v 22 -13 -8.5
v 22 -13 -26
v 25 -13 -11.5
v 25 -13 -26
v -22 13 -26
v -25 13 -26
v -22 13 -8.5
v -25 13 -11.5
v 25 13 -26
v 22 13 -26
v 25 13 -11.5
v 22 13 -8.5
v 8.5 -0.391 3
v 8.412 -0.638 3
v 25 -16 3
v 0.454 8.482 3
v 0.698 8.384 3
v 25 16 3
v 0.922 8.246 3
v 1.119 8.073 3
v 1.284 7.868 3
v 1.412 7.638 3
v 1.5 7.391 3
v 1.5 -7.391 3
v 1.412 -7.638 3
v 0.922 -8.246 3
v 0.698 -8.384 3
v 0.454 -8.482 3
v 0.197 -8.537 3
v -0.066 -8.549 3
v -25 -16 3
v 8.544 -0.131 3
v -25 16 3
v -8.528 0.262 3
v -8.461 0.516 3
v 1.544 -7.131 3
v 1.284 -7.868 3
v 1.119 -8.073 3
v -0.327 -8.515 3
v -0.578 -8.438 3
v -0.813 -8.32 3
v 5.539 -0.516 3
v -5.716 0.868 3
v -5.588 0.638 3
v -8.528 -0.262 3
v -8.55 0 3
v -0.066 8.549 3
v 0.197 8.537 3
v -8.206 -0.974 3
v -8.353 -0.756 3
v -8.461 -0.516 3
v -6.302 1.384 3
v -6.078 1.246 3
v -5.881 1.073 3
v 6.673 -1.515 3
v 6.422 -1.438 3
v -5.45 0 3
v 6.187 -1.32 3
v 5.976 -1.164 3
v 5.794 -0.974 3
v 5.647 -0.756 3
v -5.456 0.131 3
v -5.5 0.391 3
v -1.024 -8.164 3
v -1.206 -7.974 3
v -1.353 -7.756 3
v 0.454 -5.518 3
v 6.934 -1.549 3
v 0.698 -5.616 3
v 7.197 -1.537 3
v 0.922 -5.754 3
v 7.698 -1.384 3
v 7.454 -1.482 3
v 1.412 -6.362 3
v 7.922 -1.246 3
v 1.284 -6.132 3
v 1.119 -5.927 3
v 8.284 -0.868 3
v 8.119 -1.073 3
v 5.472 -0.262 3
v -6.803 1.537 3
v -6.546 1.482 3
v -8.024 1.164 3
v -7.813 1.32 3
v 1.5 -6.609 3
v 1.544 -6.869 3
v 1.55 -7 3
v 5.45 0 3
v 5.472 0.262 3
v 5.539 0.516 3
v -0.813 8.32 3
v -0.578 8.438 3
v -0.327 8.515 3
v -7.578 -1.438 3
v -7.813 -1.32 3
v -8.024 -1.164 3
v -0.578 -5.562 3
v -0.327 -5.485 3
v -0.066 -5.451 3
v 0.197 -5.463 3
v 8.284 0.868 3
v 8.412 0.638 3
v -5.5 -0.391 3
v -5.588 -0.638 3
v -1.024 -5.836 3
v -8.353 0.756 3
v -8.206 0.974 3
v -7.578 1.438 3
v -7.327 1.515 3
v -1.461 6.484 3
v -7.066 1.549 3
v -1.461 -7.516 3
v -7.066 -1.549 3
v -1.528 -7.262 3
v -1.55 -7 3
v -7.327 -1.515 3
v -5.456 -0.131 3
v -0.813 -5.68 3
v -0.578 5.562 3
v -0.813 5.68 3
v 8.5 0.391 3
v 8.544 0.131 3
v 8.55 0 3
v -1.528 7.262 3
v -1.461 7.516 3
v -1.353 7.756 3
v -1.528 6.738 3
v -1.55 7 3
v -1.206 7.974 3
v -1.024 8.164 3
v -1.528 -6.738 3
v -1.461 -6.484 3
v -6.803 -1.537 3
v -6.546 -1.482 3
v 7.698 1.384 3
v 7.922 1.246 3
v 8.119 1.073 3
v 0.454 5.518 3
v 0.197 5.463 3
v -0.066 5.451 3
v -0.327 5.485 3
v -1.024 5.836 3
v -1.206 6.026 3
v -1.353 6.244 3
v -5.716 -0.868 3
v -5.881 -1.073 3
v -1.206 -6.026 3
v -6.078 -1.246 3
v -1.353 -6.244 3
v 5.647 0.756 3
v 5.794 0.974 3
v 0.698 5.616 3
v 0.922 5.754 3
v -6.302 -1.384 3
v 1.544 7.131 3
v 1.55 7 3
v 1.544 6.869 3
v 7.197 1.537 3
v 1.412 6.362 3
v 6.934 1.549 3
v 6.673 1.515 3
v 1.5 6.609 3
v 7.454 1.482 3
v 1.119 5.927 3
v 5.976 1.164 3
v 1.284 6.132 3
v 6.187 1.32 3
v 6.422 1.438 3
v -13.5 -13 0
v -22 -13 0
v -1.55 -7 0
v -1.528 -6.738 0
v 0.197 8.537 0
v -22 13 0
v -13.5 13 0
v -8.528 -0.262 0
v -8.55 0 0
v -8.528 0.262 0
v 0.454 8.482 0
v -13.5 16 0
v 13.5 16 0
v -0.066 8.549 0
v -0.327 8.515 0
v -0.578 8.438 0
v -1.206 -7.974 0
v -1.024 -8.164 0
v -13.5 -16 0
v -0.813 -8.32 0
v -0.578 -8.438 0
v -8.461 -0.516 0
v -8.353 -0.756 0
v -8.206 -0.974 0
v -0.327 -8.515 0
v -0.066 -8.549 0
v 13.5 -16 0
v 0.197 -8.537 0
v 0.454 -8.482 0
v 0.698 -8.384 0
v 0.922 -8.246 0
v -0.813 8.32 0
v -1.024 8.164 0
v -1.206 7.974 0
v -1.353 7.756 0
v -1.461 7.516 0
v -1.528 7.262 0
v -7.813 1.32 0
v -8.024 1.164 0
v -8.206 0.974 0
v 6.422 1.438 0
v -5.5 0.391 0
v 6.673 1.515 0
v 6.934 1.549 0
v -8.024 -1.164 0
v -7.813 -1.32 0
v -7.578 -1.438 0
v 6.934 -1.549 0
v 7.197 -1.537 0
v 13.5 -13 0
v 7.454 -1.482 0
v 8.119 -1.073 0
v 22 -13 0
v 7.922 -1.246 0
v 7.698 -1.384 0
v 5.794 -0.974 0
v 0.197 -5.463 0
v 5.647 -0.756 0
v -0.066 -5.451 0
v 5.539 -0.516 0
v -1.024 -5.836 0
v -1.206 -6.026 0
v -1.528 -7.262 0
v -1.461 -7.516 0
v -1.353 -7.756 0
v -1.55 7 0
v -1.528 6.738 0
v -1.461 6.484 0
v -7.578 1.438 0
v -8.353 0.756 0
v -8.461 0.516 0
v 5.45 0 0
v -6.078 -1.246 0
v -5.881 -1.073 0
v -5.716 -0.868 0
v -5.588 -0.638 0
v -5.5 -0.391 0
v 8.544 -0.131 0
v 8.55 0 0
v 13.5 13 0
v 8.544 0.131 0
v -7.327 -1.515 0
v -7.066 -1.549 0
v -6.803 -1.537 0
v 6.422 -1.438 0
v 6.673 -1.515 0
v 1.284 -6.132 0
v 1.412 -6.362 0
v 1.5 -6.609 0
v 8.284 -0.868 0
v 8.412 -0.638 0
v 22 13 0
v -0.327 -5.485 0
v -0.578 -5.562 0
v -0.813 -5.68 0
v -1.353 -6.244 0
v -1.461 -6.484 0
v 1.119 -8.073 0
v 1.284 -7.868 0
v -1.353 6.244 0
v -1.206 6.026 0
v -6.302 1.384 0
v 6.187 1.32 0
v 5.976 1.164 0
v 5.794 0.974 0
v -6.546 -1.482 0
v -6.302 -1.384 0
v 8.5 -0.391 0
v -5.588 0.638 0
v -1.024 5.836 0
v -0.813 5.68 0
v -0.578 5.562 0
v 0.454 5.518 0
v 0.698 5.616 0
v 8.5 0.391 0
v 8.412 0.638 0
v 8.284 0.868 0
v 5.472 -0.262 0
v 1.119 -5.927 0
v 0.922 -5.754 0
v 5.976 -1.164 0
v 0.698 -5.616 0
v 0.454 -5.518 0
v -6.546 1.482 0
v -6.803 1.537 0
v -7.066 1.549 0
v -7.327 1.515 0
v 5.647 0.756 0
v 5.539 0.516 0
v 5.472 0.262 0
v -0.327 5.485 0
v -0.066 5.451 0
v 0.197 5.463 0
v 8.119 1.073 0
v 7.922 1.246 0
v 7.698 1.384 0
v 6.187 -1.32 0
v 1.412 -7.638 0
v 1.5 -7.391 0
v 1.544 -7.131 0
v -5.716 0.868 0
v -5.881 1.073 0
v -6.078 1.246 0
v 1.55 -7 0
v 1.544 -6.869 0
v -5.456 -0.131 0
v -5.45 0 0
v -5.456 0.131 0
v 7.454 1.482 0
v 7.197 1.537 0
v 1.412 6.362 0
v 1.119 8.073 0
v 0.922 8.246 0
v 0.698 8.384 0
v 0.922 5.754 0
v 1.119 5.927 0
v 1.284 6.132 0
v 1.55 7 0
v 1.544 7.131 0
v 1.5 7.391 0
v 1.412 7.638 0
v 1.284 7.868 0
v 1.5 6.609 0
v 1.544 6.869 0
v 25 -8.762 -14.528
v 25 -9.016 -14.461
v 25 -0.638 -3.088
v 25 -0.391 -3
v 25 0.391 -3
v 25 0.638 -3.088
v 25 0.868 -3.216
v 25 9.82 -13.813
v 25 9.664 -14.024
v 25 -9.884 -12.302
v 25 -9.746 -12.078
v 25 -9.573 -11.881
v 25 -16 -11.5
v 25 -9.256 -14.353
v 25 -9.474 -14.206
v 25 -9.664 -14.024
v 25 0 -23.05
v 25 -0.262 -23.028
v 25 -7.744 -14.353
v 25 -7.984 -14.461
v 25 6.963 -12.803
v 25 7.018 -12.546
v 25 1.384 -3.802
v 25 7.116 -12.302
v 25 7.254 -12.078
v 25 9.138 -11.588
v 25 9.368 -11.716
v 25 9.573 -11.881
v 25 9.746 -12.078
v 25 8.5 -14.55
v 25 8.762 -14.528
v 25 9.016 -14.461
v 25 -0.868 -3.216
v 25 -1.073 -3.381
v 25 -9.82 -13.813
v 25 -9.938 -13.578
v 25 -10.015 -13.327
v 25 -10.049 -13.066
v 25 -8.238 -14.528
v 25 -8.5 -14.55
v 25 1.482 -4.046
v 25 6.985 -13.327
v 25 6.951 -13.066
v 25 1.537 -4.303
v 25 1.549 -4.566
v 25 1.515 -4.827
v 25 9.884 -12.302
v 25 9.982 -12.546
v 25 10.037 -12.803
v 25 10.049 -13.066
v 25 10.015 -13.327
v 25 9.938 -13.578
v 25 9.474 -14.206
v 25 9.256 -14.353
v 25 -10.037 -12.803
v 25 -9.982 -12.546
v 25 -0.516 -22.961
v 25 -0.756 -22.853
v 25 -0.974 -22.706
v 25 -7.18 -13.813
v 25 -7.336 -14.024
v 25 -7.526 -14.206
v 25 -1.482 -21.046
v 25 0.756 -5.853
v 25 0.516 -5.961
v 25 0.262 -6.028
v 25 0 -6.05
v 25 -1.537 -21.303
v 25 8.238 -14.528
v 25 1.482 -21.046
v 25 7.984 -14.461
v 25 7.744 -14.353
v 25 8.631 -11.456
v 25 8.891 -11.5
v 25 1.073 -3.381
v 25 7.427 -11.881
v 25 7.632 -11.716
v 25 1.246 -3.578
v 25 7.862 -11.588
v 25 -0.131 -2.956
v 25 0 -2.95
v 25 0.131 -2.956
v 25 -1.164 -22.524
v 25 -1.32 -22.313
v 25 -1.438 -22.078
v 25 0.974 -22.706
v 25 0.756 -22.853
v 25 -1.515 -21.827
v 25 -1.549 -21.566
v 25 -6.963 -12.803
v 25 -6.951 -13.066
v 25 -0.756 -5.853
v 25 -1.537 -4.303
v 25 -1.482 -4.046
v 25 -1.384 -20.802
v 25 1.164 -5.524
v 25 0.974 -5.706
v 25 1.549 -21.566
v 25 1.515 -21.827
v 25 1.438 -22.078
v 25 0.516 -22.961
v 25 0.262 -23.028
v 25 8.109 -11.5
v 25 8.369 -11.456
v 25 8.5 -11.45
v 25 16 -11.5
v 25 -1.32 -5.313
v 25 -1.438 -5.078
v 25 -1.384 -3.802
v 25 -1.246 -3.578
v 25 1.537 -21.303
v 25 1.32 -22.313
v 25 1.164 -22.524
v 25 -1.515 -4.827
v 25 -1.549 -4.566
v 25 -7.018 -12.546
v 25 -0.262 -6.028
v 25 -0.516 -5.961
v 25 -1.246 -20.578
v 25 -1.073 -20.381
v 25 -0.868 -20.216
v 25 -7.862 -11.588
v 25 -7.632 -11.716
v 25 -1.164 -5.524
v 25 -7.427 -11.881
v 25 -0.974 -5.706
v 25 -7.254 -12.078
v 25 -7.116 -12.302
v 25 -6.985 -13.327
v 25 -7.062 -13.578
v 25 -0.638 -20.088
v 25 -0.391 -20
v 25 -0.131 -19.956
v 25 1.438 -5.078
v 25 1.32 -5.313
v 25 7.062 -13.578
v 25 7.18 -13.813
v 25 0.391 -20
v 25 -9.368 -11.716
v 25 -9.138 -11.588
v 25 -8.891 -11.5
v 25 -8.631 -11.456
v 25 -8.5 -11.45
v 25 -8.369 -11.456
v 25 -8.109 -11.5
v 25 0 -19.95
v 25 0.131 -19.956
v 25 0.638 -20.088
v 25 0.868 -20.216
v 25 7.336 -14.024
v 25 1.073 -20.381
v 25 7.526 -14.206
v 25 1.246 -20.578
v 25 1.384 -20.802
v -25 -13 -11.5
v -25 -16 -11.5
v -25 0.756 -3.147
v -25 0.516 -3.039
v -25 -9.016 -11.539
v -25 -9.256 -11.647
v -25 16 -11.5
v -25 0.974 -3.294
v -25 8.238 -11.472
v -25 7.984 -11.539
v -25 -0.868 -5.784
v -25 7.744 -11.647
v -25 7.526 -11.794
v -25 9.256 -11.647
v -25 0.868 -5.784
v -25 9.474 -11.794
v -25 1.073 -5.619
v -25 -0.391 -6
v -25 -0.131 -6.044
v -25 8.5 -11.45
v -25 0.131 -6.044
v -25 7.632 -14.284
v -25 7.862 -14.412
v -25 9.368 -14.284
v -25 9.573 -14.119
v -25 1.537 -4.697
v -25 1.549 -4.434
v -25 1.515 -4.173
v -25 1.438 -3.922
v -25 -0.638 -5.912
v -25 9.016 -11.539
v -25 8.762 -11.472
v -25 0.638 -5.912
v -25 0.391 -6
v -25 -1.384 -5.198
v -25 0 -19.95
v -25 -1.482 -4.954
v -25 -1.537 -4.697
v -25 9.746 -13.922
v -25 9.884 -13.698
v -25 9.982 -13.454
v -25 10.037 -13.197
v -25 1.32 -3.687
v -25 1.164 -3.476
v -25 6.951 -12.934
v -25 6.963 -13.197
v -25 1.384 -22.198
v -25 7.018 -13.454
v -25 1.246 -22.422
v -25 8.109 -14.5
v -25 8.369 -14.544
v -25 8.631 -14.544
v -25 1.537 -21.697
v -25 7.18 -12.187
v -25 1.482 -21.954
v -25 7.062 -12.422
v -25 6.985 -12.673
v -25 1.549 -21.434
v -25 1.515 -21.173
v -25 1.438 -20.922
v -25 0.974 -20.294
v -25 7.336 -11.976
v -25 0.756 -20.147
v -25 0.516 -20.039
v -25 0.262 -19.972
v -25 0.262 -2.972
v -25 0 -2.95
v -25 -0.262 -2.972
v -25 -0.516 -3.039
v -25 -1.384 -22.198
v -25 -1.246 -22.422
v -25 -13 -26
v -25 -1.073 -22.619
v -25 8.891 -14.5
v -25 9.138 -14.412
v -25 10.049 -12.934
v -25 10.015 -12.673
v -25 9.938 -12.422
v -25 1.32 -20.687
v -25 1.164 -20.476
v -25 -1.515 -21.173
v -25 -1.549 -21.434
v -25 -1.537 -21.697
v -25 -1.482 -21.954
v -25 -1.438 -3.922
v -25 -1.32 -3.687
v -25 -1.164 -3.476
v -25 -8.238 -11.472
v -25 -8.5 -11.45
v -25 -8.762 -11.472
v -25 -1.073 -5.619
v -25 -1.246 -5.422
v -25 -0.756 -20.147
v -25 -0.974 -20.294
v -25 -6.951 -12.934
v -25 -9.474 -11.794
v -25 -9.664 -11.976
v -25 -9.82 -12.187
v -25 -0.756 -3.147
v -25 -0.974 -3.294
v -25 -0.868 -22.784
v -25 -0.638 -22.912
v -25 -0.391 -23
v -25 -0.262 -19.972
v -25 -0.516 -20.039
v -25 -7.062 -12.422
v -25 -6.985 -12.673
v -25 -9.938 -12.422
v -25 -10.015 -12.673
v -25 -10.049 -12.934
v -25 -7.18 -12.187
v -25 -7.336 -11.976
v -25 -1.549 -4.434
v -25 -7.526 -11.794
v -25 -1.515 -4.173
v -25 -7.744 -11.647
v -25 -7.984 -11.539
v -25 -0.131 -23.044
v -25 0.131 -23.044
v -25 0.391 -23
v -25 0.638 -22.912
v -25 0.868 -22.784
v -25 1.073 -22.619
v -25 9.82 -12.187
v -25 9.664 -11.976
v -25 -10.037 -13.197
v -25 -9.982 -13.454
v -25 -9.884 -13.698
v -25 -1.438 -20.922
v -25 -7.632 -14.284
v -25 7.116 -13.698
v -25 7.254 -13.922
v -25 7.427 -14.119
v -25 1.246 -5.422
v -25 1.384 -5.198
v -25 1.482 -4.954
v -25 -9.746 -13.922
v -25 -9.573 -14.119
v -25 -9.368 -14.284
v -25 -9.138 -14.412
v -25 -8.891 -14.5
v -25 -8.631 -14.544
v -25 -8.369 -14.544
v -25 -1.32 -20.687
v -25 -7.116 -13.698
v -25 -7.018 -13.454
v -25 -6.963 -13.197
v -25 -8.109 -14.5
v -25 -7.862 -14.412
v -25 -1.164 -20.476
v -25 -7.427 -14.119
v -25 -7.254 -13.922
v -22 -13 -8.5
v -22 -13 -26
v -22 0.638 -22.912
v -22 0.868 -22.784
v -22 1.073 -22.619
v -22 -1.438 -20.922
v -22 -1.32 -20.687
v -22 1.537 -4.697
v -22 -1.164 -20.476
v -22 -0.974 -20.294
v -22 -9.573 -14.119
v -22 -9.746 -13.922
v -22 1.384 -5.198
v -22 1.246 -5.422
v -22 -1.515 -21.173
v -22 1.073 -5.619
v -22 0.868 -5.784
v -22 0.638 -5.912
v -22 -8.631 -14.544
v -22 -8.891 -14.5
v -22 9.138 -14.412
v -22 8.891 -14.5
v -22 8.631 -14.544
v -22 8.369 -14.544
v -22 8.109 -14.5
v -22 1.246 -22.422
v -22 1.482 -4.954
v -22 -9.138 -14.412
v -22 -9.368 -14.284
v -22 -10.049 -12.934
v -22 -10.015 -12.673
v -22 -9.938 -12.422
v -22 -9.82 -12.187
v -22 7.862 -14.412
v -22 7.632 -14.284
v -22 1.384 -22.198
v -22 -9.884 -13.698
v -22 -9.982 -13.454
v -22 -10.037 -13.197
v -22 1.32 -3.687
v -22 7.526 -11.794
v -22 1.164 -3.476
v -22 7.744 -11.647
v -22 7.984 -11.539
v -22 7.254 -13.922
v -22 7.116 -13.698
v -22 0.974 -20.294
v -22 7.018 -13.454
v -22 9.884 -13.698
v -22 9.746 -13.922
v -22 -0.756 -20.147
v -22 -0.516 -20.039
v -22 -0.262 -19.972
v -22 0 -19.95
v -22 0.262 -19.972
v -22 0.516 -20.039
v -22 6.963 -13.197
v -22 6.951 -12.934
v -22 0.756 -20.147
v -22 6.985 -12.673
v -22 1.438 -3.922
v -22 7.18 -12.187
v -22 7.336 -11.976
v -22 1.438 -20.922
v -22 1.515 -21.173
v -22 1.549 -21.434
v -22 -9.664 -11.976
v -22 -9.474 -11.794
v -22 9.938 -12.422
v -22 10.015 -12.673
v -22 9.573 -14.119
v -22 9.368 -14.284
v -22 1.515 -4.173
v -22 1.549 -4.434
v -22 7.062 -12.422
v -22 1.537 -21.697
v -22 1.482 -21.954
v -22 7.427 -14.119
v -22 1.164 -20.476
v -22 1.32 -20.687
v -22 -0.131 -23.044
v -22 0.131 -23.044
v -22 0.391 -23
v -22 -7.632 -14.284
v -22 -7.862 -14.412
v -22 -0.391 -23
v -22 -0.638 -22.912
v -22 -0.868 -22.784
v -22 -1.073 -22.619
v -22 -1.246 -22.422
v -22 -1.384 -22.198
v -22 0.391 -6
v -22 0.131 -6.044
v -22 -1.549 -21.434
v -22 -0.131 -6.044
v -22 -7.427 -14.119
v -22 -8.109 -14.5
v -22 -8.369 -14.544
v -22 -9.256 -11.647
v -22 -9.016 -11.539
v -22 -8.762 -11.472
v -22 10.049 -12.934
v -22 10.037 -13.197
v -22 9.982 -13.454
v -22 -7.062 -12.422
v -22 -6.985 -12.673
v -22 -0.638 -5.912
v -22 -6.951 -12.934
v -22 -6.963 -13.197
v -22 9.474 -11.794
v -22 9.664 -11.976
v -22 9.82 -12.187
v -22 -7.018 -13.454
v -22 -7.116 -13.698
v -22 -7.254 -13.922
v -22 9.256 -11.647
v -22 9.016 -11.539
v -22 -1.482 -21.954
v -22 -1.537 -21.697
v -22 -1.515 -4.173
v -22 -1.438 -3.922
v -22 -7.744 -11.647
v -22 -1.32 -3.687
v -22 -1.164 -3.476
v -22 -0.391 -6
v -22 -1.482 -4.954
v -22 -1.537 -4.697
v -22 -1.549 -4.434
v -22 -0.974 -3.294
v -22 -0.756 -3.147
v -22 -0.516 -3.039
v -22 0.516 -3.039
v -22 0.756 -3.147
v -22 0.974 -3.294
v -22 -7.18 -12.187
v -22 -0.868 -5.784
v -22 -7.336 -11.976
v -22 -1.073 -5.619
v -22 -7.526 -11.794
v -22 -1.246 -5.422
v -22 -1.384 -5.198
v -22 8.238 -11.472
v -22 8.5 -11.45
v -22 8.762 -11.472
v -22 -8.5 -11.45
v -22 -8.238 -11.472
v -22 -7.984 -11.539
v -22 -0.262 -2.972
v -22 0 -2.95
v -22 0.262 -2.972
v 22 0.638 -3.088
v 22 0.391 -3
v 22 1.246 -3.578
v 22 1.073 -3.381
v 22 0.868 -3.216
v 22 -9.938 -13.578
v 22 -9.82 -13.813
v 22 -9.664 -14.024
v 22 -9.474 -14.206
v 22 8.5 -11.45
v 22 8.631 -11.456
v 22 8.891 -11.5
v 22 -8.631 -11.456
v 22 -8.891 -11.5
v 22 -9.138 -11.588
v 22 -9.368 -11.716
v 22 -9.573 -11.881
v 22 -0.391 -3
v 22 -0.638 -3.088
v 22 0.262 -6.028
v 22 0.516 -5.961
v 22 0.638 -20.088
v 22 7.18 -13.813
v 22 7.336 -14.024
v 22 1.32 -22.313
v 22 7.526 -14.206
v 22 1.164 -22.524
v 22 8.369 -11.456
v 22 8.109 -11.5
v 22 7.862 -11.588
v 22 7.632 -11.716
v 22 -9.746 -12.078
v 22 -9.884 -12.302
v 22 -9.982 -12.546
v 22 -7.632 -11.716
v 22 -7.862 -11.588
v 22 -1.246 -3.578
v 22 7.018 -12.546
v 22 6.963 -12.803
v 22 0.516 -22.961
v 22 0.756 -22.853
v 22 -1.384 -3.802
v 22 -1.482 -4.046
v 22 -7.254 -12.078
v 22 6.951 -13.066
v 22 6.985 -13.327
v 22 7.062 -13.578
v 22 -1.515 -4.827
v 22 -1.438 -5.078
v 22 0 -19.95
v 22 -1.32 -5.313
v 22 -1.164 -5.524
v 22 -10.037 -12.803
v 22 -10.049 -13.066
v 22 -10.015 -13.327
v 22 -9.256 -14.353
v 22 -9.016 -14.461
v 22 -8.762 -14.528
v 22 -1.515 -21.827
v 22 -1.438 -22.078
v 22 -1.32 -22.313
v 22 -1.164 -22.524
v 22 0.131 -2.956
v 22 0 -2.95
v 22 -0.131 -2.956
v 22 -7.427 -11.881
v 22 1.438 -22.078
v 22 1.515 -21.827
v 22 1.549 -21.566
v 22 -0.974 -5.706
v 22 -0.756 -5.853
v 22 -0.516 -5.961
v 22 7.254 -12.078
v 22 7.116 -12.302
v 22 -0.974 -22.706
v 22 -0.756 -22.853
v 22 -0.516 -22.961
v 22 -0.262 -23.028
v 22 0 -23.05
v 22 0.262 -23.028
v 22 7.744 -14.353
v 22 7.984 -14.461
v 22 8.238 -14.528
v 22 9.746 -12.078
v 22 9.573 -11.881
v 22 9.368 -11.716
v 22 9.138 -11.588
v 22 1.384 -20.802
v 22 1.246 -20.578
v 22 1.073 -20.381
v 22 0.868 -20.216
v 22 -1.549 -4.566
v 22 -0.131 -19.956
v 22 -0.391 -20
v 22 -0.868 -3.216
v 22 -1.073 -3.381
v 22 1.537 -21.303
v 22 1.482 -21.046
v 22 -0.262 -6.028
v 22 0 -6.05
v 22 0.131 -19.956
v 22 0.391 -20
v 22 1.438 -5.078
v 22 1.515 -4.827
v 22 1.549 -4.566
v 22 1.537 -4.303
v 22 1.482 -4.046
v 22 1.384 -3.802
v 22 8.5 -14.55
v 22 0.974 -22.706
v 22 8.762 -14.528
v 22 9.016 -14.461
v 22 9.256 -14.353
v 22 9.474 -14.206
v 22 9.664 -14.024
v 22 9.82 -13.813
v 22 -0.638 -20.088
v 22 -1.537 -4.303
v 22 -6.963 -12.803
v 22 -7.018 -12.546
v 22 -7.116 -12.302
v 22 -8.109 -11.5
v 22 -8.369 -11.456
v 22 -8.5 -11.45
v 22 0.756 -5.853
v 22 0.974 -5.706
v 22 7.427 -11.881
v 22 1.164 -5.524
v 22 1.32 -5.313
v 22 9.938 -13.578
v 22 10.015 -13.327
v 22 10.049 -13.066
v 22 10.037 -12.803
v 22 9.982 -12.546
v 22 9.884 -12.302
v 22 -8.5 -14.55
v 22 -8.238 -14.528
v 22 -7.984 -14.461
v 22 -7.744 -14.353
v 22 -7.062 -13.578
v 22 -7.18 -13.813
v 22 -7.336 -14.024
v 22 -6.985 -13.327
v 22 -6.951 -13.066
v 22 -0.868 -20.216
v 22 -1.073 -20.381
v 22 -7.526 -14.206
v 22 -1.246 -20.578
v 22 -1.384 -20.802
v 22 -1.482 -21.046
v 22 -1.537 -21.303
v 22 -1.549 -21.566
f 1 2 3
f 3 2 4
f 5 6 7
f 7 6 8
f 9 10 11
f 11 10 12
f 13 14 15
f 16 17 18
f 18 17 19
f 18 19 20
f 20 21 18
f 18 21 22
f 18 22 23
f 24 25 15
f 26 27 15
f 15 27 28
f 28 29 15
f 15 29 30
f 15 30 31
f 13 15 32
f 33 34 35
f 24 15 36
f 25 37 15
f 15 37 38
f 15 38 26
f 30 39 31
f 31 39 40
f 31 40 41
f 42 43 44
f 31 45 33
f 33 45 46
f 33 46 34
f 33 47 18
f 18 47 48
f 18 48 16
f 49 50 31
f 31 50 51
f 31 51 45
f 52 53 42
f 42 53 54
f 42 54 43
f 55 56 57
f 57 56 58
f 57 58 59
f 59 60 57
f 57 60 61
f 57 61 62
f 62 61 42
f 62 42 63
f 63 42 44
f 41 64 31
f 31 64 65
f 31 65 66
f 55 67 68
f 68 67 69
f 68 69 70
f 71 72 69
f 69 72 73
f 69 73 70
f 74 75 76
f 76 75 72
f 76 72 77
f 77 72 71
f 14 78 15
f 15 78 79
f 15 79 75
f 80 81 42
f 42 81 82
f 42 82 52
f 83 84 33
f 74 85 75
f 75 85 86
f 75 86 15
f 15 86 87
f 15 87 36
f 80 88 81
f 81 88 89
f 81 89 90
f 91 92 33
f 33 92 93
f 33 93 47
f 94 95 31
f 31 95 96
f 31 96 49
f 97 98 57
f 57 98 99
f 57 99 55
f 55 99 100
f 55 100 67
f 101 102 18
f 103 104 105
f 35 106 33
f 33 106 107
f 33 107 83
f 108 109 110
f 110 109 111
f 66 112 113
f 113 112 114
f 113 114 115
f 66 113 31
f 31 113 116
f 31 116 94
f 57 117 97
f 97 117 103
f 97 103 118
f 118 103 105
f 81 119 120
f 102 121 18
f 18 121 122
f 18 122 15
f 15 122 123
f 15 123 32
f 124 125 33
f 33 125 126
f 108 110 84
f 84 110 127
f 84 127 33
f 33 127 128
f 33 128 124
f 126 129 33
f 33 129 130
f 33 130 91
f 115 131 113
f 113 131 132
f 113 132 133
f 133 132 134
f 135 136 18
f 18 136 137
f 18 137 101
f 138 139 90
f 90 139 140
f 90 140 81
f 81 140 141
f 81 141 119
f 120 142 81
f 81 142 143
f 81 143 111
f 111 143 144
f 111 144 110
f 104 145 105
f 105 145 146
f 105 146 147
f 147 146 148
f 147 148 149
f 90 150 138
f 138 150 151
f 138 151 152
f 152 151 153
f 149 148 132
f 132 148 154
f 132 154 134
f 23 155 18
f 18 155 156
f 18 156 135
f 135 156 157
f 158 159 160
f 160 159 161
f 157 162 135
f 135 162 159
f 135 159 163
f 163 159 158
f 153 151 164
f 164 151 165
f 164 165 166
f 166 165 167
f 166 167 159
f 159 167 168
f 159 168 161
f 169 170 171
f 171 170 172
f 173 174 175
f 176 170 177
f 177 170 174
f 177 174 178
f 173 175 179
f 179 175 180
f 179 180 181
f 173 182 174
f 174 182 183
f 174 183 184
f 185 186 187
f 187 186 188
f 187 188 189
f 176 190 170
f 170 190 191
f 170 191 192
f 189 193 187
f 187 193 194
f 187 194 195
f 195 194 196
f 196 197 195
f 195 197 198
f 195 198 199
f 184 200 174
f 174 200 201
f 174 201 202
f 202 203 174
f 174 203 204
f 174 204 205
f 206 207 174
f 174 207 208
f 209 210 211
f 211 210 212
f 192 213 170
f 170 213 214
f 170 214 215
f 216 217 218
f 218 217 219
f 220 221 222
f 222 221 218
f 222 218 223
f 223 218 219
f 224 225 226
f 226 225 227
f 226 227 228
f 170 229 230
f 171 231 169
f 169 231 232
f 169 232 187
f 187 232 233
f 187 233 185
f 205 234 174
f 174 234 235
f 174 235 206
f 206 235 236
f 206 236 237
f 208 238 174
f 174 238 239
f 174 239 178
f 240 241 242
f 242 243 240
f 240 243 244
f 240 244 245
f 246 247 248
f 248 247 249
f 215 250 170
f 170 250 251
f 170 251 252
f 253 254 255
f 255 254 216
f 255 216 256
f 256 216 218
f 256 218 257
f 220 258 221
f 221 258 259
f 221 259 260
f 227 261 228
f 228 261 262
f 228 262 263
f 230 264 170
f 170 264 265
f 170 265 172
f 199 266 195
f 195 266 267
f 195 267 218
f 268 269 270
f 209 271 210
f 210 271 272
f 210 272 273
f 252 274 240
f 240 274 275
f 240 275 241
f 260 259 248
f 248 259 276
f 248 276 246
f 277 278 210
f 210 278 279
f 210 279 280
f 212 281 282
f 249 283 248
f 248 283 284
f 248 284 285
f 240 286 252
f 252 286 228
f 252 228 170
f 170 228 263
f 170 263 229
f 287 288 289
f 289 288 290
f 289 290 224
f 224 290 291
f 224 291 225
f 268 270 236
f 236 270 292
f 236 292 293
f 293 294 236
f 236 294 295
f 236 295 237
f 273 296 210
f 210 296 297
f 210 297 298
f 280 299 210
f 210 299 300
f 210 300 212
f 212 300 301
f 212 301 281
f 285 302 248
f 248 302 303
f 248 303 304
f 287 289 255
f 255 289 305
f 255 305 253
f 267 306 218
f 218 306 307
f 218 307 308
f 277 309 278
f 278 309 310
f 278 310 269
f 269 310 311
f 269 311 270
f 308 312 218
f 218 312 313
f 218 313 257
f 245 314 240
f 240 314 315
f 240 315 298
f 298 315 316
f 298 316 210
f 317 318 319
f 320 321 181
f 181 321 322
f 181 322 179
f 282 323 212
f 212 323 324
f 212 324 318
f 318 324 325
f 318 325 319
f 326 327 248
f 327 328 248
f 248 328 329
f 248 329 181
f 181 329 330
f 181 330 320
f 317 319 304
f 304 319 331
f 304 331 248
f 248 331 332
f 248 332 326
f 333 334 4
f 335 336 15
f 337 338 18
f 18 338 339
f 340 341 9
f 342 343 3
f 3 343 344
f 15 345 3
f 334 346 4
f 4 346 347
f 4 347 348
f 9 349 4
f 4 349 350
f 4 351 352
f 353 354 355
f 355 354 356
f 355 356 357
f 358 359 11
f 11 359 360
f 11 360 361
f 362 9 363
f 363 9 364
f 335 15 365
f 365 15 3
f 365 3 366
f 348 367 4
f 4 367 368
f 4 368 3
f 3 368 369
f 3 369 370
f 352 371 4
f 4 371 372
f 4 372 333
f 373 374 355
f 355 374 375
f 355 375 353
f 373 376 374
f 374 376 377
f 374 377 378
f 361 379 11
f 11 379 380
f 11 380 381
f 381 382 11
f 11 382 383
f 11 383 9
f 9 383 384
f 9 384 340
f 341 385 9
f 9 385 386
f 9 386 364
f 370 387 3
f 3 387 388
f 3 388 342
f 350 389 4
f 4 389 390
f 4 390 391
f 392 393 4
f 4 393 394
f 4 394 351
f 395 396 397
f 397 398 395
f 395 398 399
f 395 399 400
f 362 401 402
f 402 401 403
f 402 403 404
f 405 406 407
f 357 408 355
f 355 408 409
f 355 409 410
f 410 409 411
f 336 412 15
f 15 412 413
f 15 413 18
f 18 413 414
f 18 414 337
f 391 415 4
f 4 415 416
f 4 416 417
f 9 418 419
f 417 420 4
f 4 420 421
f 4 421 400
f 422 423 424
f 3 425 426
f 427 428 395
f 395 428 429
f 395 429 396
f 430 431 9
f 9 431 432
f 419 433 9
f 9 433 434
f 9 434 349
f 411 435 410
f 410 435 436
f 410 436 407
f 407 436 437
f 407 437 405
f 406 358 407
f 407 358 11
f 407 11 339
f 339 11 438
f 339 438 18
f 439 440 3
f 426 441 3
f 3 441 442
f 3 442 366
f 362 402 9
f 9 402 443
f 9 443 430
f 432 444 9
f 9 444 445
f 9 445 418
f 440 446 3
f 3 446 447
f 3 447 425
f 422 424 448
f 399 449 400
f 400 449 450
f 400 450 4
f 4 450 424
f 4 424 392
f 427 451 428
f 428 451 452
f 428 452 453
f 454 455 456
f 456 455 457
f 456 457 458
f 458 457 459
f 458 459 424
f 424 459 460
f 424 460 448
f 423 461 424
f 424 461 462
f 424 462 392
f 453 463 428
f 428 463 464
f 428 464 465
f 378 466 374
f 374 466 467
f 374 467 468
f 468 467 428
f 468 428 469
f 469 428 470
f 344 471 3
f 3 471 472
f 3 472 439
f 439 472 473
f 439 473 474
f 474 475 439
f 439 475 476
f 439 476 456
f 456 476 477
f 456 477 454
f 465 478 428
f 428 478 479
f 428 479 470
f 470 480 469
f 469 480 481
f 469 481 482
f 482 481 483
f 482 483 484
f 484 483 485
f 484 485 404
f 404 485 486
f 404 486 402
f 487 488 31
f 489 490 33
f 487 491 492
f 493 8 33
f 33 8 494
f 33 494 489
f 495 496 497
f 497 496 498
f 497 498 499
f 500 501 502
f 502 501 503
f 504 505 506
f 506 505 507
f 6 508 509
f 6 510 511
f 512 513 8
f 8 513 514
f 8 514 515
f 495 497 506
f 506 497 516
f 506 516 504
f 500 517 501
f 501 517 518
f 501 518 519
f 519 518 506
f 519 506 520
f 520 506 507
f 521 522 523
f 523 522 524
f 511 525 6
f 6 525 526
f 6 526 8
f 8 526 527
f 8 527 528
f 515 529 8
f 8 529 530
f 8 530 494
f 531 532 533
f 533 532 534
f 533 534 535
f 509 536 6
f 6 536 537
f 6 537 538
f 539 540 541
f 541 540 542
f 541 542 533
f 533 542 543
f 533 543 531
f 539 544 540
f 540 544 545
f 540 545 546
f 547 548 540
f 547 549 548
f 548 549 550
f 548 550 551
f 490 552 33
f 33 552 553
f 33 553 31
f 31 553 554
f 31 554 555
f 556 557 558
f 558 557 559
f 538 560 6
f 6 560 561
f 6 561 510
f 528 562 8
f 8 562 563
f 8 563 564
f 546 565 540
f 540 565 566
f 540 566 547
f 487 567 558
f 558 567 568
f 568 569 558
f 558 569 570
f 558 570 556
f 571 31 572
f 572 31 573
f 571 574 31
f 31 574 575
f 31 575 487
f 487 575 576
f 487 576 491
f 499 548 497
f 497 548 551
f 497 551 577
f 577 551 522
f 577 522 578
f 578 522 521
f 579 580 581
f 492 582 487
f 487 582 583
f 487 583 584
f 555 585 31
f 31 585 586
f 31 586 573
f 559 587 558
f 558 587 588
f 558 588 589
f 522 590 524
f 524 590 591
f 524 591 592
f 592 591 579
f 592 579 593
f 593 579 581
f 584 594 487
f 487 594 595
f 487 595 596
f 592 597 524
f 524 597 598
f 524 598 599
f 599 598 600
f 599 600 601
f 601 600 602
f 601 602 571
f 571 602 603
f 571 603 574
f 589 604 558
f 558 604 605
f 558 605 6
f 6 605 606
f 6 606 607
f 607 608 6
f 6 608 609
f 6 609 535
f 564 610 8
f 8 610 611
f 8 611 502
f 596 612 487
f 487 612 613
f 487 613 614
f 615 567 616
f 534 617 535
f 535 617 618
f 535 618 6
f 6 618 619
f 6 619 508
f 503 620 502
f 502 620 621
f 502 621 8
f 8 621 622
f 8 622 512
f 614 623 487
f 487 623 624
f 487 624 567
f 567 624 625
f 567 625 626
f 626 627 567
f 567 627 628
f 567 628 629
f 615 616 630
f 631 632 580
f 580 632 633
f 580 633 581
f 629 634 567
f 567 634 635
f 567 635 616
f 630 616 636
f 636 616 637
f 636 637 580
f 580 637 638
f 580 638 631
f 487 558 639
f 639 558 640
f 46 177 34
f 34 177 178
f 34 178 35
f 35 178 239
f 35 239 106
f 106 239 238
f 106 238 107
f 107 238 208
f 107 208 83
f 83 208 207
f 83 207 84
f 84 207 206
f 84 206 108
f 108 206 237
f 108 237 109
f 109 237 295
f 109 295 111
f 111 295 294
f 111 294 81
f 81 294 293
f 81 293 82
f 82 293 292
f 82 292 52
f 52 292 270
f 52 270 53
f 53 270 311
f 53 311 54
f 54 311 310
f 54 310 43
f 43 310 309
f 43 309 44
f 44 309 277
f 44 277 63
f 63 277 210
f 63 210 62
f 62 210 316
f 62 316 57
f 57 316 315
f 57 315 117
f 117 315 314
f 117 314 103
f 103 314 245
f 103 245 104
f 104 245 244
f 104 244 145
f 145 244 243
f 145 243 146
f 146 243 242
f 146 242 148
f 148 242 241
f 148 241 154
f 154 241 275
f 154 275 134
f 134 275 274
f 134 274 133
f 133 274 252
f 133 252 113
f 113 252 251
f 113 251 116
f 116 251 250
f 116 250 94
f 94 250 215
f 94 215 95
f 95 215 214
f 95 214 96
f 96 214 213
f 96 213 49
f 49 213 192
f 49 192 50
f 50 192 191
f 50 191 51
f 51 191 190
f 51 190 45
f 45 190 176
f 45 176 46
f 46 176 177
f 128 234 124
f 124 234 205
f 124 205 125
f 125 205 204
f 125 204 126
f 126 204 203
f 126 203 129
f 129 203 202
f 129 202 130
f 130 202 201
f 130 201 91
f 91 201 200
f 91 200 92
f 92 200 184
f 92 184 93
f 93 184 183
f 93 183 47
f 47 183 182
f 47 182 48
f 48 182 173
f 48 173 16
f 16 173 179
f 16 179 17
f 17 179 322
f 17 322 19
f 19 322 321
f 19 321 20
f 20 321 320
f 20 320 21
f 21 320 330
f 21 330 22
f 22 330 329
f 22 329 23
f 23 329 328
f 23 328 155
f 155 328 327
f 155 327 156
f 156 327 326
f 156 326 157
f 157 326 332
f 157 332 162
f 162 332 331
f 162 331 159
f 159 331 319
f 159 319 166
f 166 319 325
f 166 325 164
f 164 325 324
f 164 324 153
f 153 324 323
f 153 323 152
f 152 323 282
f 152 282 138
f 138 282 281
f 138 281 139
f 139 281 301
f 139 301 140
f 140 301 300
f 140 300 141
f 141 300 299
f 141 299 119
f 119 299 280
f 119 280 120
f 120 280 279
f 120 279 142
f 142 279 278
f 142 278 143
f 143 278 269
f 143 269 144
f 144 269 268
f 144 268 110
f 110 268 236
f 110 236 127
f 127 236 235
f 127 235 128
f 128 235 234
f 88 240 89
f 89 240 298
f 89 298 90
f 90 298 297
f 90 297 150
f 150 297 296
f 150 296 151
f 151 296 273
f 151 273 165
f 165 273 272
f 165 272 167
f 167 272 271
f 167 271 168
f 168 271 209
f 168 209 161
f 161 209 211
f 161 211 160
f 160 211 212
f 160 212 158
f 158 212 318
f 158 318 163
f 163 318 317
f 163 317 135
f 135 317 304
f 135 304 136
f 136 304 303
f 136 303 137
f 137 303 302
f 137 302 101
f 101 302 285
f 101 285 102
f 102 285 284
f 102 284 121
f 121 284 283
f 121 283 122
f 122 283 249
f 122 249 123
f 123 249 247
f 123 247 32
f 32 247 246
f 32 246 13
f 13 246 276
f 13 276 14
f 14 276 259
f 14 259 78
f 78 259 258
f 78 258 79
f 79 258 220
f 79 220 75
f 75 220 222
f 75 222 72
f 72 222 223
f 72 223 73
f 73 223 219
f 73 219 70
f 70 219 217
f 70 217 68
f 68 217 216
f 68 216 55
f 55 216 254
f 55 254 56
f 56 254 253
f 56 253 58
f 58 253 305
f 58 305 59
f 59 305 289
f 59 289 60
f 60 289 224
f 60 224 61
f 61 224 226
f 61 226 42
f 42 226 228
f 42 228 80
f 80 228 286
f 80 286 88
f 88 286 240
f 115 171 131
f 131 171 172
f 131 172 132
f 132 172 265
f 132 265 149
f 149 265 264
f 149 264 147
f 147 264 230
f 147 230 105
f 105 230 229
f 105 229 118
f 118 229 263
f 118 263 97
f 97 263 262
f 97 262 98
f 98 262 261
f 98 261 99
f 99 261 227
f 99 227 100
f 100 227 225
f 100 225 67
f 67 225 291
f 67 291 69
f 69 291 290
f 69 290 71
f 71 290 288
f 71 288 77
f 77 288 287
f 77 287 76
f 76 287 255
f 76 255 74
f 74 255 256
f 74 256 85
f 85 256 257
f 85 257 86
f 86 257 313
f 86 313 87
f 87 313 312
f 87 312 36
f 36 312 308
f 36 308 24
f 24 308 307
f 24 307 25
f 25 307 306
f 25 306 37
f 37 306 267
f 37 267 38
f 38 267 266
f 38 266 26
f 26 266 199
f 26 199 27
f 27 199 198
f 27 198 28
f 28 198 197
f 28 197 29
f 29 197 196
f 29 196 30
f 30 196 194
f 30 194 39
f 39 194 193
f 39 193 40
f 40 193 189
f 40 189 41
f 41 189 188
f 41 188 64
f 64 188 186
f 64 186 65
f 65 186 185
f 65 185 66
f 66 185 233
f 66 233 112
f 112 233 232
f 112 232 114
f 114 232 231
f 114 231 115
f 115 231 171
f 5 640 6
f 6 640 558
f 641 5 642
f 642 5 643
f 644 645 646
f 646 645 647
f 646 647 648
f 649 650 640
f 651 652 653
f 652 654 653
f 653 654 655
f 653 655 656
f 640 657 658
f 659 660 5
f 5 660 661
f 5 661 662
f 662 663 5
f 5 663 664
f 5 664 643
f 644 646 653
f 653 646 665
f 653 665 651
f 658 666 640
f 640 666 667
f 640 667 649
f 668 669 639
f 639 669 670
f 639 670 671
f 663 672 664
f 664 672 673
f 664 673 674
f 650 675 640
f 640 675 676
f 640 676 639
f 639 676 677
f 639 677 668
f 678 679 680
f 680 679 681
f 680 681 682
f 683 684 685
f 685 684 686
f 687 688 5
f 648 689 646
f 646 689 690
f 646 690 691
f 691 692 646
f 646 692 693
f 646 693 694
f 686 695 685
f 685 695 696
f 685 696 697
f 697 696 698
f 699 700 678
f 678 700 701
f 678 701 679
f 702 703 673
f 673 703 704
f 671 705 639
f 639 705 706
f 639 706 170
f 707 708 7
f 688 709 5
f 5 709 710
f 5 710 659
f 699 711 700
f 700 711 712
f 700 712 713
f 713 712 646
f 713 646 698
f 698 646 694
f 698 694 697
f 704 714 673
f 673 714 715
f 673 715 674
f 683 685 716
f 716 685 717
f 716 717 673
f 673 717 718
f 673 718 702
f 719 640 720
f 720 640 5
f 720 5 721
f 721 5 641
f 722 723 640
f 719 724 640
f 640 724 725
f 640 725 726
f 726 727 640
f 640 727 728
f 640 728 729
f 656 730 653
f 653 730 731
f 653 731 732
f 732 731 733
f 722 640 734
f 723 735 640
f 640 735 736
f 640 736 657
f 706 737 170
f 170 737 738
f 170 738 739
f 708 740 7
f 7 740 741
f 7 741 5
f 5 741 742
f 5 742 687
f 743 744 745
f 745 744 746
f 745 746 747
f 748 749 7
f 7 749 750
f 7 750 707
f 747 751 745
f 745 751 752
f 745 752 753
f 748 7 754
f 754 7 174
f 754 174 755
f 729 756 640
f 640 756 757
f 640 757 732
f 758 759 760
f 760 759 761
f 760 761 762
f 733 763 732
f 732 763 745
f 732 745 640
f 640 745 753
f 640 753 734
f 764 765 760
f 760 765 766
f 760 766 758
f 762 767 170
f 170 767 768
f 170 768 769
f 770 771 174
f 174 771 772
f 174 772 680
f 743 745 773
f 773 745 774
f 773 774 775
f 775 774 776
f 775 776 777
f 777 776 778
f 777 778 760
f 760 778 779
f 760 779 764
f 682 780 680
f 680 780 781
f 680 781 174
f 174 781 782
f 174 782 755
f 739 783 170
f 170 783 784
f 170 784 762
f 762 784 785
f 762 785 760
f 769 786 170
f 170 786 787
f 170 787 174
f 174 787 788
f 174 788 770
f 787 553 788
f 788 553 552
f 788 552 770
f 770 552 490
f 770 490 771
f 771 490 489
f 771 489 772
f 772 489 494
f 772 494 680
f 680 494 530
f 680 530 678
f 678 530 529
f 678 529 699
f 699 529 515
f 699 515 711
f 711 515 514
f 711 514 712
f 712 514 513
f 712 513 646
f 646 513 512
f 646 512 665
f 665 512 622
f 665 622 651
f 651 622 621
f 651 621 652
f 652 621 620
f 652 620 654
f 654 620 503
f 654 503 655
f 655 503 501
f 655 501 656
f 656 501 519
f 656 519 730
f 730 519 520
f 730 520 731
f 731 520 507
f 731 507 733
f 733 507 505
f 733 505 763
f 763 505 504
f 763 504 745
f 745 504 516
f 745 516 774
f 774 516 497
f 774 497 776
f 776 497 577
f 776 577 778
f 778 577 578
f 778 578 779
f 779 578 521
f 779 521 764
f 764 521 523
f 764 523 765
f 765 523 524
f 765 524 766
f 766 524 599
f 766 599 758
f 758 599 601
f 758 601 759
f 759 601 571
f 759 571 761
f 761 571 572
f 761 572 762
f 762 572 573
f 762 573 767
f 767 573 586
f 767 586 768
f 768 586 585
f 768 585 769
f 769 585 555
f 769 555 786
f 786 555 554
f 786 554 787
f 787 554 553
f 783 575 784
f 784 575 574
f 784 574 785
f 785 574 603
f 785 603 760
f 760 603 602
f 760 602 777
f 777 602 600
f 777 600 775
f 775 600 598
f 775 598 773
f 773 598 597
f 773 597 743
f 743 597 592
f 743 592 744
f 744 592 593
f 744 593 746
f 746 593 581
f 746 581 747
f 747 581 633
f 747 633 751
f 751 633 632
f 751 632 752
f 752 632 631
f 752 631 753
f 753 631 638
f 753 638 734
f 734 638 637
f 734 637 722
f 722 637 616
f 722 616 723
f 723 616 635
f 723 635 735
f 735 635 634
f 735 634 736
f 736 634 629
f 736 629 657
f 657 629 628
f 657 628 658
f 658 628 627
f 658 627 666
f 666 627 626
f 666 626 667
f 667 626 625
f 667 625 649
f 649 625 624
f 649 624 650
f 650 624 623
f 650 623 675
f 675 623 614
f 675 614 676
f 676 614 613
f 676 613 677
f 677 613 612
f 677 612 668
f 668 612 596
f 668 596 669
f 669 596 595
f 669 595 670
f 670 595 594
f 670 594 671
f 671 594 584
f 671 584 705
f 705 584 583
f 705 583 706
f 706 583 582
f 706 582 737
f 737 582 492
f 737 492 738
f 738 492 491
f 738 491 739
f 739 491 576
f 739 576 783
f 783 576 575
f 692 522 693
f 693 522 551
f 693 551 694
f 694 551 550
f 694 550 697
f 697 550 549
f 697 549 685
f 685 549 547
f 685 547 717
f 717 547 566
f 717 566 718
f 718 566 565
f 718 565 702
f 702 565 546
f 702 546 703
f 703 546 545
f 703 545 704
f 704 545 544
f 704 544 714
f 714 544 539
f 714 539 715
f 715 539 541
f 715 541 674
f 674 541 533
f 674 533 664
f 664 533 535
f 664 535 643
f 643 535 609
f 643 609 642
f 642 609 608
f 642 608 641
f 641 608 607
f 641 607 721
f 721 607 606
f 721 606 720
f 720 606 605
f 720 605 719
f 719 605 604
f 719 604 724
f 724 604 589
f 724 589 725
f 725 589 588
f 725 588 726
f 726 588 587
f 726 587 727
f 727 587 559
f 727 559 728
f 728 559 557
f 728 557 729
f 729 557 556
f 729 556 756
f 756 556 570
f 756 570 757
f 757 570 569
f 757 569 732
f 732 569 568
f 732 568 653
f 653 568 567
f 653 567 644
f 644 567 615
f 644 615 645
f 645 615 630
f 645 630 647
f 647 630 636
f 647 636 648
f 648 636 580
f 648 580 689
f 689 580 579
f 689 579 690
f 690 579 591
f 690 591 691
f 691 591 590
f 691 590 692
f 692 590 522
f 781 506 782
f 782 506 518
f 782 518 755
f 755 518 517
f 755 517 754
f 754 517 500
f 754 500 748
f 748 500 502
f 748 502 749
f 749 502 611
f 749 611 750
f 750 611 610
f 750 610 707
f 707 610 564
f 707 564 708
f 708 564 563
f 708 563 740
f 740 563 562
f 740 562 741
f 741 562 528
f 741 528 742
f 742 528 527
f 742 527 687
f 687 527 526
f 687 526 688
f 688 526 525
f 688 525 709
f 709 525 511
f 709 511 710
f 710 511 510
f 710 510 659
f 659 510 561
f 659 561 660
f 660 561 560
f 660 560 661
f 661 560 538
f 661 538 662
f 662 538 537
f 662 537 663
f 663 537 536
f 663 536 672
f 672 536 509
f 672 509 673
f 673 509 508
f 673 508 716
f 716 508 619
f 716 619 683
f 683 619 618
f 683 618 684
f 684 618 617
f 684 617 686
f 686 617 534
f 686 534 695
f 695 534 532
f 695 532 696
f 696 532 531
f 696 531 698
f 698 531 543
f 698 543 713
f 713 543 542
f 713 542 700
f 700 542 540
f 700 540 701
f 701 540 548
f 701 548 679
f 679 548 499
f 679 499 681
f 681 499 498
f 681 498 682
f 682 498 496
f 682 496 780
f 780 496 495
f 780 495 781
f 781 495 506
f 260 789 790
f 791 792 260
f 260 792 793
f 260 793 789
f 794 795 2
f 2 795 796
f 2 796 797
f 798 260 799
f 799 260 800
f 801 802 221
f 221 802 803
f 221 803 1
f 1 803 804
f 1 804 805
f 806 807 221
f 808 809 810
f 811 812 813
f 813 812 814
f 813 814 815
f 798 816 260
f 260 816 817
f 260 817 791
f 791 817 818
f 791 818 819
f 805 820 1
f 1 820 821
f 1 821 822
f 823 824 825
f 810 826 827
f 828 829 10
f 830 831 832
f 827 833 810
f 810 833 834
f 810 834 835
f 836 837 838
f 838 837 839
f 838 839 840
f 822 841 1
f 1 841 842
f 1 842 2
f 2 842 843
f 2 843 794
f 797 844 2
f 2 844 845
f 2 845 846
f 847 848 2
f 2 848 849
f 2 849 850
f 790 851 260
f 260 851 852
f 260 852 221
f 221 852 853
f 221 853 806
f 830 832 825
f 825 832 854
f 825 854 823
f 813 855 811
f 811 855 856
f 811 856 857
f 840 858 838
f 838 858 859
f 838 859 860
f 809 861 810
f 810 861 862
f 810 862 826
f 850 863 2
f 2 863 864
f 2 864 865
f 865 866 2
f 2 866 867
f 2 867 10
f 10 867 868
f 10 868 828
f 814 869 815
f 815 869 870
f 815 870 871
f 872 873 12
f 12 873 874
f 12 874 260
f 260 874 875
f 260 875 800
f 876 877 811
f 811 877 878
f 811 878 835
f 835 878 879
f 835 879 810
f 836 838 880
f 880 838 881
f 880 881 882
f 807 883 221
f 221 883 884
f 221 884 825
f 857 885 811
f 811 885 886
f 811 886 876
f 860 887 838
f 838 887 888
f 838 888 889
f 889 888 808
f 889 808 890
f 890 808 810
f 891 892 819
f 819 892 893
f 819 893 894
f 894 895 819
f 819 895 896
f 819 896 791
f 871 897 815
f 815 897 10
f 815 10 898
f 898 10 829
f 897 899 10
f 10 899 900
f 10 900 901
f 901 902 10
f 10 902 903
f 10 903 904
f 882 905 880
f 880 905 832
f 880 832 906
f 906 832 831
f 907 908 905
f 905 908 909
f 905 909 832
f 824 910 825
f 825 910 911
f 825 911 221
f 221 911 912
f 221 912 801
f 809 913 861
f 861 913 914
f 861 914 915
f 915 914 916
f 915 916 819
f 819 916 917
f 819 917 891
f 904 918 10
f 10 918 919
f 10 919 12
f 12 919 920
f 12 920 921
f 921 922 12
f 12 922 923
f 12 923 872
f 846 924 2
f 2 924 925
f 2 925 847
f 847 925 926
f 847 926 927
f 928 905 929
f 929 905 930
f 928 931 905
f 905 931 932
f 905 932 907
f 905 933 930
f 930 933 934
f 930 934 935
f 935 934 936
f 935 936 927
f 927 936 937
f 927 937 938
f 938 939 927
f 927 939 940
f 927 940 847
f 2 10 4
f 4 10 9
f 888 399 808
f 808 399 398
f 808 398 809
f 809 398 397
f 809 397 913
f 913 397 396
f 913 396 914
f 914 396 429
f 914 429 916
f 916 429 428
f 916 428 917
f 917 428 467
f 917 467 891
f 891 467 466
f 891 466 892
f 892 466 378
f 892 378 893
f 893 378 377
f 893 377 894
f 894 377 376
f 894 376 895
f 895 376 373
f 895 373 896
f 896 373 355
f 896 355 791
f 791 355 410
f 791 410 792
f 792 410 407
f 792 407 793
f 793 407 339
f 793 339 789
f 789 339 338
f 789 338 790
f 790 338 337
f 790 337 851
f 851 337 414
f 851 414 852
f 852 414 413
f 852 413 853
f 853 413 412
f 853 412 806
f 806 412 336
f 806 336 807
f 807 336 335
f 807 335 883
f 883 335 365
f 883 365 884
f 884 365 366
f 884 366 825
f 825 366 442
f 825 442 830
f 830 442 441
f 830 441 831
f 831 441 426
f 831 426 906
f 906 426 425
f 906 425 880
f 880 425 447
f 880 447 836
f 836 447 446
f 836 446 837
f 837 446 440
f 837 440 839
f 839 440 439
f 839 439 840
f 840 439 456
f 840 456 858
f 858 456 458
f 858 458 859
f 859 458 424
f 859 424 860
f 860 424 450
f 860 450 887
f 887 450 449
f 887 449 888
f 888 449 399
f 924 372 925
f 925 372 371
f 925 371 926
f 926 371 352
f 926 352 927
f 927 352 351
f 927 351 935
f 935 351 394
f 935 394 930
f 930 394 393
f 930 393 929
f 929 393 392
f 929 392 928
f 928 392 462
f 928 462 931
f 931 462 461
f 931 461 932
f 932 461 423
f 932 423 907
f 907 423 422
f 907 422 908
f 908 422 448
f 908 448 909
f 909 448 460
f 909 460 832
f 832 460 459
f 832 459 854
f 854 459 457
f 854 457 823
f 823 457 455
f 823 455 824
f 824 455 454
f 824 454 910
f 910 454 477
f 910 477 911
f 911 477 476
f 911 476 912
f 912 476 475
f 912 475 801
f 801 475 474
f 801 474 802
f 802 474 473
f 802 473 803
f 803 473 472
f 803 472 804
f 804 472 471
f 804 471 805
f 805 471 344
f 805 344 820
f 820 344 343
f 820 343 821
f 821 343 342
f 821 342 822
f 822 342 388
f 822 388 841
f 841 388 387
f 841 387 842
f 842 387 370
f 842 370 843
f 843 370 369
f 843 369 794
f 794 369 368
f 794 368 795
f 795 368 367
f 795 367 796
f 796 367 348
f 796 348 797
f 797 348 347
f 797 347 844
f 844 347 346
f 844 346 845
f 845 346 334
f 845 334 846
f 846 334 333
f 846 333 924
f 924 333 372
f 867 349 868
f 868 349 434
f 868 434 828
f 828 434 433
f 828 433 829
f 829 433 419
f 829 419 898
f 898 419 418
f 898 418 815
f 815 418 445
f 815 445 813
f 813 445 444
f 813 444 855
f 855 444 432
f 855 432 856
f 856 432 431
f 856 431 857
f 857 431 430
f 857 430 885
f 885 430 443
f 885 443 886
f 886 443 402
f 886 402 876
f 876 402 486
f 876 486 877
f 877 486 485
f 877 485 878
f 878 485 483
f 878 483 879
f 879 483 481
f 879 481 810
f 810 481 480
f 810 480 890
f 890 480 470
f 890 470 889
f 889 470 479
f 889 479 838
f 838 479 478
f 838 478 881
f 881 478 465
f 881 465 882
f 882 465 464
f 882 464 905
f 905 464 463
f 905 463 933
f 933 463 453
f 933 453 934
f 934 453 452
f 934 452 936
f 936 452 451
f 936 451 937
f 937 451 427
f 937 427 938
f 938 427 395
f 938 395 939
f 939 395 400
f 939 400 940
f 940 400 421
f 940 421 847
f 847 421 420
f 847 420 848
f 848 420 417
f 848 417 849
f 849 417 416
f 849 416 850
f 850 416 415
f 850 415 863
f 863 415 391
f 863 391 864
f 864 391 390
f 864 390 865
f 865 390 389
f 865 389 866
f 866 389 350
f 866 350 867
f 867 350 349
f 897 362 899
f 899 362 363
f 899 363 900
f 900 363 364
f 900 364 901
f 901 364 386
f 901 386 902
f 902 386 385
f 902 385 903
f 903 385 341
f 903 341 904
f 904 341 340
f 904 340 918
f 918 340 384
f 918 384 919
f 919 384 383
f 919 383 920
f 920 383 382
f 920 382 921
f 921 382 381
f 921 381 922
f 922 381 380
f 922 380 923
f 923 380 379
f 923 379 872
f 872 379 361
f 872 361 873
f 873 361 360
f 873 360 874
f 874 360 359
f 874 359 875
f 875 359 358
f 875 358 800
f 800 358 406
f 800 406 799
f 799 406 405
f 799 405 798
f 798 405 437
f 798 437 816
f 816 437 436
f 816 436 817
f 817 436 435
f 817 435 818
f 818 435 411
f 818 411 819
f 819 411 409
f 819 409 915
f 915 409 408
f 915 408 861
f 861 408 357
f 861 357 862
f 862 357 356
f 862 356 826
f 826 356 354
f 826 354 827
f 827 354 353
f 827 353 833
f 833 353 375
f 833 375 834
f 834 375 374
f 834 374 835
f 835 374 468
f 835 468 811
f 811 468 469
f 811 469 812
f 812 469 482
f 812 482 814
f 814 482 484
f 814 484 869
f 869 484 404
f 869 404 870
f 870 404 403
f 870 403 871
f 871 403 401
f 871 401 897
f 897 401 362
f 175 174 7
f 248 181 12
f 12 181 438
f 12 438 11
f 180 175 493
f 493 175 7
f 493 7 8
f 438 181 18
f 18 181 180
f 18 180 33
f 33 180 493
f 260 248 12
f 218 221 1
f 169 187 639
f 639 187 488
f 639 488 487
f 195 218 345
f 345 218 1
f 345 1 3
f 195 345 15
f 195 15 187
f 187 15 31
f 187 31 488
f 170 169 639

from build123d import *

# Parameters (mm, degrees)
SKETCH1_W           = 50
SKETCH1_H           = 26
SKETCH1_R           = 1.55
BOSS_EXTRUDE1_DEPTH = 3
SKETCH2_W           = 29
SKETCH2_H           = 26
SKETCH2_R           = 1.55
BOSS_EXTRUDE2_DEPTH = 3
BOSS_EXTRUDE3_START = -47
SKETCH2_2_W         = 29
SKETCH2_2_H         = 26
SKETCH2_2_R         = 1.55
BOSS_EXTRUDE3_DEPTH = 3
BOSS_EXTRUDE4_DEPTH = 3
BOSS_EXTRUDE5_START = -26
BOSS_EXTRUDE5_DEPTH = 3


with BuildPart() as part:
    # Sketch1 → Boss-Extrude1 (new body)
    with BuildSketch(Plane.XY):
        Rectangle(SKETCH1_W, SKETCH1_H)
        with Locations((-7, 0)):
            Circle(SKETCH1_R, mode=Mode.SUBTRACT)
        with Locations((0, 7)):
            Circle(SKETCH1_R, mode=Mode.SUBTRACT)
        with Locations((7, 0)):
            Circle(SKETCH1_R, mode=Mode.SUBTRACT)
        with Locations((0, -7)):
            Circle(SKETCH1_R, mode=Mode.SUBTRACT)
    extrude(amount=BOSS_EXTRUDE1_DEPTH)

    # Sketch2 → Boss-Extrude2 (add)
    with BuildSketch(Plane.ZY.offset(25)):
        with Locations((-11.5, 0)):
            Rectangle(SKETCH2_W, SKETCH2_H)
        with Locations((-4.5, 0)):
            Circle(SKETCH2_R, mode=Mode.SUBTRACT)
        with Locations((-13, -8.5)):
            Circle(SKETCH2_R, mode=Mode.SUBTRACT)
        with Locations((-21.5, 0)):
            Circle(SKETCH2_R, mode=Mode.SUBTRACT)
        with Locations((-13, 8.5)):
            Circle(SKETCH2_R, mode=Mode.SUBTRACT)
    extrude(amount=-BOSS_EXTRUDE2_DEPTH)

    # Sketch2<2> → Boss-Extrude3 (add)
    with BuildSketch(Plane.ZY.offset(25).offset(BOSS_EXTRUDE3_START)):
        with Locations((-11.5, 0)):
            Rectangle(SKETCH2_2_W, SKETCH2_2_H)
        with Locations((-4.5, 0)):
            Circle(SKETCH2_2_R, mode=Mode.SUBTRACT)
        with Locations((-13, -8.5)):
            Circle(SKETCH2_2_R, mode=Mode.SUBTRACT)
        with Locations((-21.5, 0)):
            Circle(SKETCH2_2_R, mode=Mode.SUBTRACT)
        with Locations((-13, 8.5)):
            Circle(SKETCH2_2_R, mode=Mode.SUBTRACT)
    extrude(amount=-BOSS_EXTRUDE3_DEPTH)

    # Sketch3 → Boss-Extrude4 (add)
    with BuildSketch(Plane(origin=(0, 13, 0), x_dir=(1, 0, 0), z_dir=(0, 1, 0))):
        Polygon((-25, -3), (-25, 11.5), (-13.5, 0), (13.5, 0), (25, 11.5), (25, -3), align=None)
    extrude(amount=BOSS_EXTRUDE4_DEPTH)

    # Sketch3<3> → Boss-Extrude5 (add)
    with BuildSketch(Plane(origin=(0, 13, 0), x_dir=(1, 0, 0), z_dir=(0, 1, 0)).offset(BOSS_EXTRUDE5_START)):
        Polygon((-25, -3), (-25, 11.5), (-13.5, 0), (13.5, 0), (25, 11.5), (25, -3), align=None)
    extrude(amount=-BOSS_EXTRUDE5_DEPTH)


solid = part.part
